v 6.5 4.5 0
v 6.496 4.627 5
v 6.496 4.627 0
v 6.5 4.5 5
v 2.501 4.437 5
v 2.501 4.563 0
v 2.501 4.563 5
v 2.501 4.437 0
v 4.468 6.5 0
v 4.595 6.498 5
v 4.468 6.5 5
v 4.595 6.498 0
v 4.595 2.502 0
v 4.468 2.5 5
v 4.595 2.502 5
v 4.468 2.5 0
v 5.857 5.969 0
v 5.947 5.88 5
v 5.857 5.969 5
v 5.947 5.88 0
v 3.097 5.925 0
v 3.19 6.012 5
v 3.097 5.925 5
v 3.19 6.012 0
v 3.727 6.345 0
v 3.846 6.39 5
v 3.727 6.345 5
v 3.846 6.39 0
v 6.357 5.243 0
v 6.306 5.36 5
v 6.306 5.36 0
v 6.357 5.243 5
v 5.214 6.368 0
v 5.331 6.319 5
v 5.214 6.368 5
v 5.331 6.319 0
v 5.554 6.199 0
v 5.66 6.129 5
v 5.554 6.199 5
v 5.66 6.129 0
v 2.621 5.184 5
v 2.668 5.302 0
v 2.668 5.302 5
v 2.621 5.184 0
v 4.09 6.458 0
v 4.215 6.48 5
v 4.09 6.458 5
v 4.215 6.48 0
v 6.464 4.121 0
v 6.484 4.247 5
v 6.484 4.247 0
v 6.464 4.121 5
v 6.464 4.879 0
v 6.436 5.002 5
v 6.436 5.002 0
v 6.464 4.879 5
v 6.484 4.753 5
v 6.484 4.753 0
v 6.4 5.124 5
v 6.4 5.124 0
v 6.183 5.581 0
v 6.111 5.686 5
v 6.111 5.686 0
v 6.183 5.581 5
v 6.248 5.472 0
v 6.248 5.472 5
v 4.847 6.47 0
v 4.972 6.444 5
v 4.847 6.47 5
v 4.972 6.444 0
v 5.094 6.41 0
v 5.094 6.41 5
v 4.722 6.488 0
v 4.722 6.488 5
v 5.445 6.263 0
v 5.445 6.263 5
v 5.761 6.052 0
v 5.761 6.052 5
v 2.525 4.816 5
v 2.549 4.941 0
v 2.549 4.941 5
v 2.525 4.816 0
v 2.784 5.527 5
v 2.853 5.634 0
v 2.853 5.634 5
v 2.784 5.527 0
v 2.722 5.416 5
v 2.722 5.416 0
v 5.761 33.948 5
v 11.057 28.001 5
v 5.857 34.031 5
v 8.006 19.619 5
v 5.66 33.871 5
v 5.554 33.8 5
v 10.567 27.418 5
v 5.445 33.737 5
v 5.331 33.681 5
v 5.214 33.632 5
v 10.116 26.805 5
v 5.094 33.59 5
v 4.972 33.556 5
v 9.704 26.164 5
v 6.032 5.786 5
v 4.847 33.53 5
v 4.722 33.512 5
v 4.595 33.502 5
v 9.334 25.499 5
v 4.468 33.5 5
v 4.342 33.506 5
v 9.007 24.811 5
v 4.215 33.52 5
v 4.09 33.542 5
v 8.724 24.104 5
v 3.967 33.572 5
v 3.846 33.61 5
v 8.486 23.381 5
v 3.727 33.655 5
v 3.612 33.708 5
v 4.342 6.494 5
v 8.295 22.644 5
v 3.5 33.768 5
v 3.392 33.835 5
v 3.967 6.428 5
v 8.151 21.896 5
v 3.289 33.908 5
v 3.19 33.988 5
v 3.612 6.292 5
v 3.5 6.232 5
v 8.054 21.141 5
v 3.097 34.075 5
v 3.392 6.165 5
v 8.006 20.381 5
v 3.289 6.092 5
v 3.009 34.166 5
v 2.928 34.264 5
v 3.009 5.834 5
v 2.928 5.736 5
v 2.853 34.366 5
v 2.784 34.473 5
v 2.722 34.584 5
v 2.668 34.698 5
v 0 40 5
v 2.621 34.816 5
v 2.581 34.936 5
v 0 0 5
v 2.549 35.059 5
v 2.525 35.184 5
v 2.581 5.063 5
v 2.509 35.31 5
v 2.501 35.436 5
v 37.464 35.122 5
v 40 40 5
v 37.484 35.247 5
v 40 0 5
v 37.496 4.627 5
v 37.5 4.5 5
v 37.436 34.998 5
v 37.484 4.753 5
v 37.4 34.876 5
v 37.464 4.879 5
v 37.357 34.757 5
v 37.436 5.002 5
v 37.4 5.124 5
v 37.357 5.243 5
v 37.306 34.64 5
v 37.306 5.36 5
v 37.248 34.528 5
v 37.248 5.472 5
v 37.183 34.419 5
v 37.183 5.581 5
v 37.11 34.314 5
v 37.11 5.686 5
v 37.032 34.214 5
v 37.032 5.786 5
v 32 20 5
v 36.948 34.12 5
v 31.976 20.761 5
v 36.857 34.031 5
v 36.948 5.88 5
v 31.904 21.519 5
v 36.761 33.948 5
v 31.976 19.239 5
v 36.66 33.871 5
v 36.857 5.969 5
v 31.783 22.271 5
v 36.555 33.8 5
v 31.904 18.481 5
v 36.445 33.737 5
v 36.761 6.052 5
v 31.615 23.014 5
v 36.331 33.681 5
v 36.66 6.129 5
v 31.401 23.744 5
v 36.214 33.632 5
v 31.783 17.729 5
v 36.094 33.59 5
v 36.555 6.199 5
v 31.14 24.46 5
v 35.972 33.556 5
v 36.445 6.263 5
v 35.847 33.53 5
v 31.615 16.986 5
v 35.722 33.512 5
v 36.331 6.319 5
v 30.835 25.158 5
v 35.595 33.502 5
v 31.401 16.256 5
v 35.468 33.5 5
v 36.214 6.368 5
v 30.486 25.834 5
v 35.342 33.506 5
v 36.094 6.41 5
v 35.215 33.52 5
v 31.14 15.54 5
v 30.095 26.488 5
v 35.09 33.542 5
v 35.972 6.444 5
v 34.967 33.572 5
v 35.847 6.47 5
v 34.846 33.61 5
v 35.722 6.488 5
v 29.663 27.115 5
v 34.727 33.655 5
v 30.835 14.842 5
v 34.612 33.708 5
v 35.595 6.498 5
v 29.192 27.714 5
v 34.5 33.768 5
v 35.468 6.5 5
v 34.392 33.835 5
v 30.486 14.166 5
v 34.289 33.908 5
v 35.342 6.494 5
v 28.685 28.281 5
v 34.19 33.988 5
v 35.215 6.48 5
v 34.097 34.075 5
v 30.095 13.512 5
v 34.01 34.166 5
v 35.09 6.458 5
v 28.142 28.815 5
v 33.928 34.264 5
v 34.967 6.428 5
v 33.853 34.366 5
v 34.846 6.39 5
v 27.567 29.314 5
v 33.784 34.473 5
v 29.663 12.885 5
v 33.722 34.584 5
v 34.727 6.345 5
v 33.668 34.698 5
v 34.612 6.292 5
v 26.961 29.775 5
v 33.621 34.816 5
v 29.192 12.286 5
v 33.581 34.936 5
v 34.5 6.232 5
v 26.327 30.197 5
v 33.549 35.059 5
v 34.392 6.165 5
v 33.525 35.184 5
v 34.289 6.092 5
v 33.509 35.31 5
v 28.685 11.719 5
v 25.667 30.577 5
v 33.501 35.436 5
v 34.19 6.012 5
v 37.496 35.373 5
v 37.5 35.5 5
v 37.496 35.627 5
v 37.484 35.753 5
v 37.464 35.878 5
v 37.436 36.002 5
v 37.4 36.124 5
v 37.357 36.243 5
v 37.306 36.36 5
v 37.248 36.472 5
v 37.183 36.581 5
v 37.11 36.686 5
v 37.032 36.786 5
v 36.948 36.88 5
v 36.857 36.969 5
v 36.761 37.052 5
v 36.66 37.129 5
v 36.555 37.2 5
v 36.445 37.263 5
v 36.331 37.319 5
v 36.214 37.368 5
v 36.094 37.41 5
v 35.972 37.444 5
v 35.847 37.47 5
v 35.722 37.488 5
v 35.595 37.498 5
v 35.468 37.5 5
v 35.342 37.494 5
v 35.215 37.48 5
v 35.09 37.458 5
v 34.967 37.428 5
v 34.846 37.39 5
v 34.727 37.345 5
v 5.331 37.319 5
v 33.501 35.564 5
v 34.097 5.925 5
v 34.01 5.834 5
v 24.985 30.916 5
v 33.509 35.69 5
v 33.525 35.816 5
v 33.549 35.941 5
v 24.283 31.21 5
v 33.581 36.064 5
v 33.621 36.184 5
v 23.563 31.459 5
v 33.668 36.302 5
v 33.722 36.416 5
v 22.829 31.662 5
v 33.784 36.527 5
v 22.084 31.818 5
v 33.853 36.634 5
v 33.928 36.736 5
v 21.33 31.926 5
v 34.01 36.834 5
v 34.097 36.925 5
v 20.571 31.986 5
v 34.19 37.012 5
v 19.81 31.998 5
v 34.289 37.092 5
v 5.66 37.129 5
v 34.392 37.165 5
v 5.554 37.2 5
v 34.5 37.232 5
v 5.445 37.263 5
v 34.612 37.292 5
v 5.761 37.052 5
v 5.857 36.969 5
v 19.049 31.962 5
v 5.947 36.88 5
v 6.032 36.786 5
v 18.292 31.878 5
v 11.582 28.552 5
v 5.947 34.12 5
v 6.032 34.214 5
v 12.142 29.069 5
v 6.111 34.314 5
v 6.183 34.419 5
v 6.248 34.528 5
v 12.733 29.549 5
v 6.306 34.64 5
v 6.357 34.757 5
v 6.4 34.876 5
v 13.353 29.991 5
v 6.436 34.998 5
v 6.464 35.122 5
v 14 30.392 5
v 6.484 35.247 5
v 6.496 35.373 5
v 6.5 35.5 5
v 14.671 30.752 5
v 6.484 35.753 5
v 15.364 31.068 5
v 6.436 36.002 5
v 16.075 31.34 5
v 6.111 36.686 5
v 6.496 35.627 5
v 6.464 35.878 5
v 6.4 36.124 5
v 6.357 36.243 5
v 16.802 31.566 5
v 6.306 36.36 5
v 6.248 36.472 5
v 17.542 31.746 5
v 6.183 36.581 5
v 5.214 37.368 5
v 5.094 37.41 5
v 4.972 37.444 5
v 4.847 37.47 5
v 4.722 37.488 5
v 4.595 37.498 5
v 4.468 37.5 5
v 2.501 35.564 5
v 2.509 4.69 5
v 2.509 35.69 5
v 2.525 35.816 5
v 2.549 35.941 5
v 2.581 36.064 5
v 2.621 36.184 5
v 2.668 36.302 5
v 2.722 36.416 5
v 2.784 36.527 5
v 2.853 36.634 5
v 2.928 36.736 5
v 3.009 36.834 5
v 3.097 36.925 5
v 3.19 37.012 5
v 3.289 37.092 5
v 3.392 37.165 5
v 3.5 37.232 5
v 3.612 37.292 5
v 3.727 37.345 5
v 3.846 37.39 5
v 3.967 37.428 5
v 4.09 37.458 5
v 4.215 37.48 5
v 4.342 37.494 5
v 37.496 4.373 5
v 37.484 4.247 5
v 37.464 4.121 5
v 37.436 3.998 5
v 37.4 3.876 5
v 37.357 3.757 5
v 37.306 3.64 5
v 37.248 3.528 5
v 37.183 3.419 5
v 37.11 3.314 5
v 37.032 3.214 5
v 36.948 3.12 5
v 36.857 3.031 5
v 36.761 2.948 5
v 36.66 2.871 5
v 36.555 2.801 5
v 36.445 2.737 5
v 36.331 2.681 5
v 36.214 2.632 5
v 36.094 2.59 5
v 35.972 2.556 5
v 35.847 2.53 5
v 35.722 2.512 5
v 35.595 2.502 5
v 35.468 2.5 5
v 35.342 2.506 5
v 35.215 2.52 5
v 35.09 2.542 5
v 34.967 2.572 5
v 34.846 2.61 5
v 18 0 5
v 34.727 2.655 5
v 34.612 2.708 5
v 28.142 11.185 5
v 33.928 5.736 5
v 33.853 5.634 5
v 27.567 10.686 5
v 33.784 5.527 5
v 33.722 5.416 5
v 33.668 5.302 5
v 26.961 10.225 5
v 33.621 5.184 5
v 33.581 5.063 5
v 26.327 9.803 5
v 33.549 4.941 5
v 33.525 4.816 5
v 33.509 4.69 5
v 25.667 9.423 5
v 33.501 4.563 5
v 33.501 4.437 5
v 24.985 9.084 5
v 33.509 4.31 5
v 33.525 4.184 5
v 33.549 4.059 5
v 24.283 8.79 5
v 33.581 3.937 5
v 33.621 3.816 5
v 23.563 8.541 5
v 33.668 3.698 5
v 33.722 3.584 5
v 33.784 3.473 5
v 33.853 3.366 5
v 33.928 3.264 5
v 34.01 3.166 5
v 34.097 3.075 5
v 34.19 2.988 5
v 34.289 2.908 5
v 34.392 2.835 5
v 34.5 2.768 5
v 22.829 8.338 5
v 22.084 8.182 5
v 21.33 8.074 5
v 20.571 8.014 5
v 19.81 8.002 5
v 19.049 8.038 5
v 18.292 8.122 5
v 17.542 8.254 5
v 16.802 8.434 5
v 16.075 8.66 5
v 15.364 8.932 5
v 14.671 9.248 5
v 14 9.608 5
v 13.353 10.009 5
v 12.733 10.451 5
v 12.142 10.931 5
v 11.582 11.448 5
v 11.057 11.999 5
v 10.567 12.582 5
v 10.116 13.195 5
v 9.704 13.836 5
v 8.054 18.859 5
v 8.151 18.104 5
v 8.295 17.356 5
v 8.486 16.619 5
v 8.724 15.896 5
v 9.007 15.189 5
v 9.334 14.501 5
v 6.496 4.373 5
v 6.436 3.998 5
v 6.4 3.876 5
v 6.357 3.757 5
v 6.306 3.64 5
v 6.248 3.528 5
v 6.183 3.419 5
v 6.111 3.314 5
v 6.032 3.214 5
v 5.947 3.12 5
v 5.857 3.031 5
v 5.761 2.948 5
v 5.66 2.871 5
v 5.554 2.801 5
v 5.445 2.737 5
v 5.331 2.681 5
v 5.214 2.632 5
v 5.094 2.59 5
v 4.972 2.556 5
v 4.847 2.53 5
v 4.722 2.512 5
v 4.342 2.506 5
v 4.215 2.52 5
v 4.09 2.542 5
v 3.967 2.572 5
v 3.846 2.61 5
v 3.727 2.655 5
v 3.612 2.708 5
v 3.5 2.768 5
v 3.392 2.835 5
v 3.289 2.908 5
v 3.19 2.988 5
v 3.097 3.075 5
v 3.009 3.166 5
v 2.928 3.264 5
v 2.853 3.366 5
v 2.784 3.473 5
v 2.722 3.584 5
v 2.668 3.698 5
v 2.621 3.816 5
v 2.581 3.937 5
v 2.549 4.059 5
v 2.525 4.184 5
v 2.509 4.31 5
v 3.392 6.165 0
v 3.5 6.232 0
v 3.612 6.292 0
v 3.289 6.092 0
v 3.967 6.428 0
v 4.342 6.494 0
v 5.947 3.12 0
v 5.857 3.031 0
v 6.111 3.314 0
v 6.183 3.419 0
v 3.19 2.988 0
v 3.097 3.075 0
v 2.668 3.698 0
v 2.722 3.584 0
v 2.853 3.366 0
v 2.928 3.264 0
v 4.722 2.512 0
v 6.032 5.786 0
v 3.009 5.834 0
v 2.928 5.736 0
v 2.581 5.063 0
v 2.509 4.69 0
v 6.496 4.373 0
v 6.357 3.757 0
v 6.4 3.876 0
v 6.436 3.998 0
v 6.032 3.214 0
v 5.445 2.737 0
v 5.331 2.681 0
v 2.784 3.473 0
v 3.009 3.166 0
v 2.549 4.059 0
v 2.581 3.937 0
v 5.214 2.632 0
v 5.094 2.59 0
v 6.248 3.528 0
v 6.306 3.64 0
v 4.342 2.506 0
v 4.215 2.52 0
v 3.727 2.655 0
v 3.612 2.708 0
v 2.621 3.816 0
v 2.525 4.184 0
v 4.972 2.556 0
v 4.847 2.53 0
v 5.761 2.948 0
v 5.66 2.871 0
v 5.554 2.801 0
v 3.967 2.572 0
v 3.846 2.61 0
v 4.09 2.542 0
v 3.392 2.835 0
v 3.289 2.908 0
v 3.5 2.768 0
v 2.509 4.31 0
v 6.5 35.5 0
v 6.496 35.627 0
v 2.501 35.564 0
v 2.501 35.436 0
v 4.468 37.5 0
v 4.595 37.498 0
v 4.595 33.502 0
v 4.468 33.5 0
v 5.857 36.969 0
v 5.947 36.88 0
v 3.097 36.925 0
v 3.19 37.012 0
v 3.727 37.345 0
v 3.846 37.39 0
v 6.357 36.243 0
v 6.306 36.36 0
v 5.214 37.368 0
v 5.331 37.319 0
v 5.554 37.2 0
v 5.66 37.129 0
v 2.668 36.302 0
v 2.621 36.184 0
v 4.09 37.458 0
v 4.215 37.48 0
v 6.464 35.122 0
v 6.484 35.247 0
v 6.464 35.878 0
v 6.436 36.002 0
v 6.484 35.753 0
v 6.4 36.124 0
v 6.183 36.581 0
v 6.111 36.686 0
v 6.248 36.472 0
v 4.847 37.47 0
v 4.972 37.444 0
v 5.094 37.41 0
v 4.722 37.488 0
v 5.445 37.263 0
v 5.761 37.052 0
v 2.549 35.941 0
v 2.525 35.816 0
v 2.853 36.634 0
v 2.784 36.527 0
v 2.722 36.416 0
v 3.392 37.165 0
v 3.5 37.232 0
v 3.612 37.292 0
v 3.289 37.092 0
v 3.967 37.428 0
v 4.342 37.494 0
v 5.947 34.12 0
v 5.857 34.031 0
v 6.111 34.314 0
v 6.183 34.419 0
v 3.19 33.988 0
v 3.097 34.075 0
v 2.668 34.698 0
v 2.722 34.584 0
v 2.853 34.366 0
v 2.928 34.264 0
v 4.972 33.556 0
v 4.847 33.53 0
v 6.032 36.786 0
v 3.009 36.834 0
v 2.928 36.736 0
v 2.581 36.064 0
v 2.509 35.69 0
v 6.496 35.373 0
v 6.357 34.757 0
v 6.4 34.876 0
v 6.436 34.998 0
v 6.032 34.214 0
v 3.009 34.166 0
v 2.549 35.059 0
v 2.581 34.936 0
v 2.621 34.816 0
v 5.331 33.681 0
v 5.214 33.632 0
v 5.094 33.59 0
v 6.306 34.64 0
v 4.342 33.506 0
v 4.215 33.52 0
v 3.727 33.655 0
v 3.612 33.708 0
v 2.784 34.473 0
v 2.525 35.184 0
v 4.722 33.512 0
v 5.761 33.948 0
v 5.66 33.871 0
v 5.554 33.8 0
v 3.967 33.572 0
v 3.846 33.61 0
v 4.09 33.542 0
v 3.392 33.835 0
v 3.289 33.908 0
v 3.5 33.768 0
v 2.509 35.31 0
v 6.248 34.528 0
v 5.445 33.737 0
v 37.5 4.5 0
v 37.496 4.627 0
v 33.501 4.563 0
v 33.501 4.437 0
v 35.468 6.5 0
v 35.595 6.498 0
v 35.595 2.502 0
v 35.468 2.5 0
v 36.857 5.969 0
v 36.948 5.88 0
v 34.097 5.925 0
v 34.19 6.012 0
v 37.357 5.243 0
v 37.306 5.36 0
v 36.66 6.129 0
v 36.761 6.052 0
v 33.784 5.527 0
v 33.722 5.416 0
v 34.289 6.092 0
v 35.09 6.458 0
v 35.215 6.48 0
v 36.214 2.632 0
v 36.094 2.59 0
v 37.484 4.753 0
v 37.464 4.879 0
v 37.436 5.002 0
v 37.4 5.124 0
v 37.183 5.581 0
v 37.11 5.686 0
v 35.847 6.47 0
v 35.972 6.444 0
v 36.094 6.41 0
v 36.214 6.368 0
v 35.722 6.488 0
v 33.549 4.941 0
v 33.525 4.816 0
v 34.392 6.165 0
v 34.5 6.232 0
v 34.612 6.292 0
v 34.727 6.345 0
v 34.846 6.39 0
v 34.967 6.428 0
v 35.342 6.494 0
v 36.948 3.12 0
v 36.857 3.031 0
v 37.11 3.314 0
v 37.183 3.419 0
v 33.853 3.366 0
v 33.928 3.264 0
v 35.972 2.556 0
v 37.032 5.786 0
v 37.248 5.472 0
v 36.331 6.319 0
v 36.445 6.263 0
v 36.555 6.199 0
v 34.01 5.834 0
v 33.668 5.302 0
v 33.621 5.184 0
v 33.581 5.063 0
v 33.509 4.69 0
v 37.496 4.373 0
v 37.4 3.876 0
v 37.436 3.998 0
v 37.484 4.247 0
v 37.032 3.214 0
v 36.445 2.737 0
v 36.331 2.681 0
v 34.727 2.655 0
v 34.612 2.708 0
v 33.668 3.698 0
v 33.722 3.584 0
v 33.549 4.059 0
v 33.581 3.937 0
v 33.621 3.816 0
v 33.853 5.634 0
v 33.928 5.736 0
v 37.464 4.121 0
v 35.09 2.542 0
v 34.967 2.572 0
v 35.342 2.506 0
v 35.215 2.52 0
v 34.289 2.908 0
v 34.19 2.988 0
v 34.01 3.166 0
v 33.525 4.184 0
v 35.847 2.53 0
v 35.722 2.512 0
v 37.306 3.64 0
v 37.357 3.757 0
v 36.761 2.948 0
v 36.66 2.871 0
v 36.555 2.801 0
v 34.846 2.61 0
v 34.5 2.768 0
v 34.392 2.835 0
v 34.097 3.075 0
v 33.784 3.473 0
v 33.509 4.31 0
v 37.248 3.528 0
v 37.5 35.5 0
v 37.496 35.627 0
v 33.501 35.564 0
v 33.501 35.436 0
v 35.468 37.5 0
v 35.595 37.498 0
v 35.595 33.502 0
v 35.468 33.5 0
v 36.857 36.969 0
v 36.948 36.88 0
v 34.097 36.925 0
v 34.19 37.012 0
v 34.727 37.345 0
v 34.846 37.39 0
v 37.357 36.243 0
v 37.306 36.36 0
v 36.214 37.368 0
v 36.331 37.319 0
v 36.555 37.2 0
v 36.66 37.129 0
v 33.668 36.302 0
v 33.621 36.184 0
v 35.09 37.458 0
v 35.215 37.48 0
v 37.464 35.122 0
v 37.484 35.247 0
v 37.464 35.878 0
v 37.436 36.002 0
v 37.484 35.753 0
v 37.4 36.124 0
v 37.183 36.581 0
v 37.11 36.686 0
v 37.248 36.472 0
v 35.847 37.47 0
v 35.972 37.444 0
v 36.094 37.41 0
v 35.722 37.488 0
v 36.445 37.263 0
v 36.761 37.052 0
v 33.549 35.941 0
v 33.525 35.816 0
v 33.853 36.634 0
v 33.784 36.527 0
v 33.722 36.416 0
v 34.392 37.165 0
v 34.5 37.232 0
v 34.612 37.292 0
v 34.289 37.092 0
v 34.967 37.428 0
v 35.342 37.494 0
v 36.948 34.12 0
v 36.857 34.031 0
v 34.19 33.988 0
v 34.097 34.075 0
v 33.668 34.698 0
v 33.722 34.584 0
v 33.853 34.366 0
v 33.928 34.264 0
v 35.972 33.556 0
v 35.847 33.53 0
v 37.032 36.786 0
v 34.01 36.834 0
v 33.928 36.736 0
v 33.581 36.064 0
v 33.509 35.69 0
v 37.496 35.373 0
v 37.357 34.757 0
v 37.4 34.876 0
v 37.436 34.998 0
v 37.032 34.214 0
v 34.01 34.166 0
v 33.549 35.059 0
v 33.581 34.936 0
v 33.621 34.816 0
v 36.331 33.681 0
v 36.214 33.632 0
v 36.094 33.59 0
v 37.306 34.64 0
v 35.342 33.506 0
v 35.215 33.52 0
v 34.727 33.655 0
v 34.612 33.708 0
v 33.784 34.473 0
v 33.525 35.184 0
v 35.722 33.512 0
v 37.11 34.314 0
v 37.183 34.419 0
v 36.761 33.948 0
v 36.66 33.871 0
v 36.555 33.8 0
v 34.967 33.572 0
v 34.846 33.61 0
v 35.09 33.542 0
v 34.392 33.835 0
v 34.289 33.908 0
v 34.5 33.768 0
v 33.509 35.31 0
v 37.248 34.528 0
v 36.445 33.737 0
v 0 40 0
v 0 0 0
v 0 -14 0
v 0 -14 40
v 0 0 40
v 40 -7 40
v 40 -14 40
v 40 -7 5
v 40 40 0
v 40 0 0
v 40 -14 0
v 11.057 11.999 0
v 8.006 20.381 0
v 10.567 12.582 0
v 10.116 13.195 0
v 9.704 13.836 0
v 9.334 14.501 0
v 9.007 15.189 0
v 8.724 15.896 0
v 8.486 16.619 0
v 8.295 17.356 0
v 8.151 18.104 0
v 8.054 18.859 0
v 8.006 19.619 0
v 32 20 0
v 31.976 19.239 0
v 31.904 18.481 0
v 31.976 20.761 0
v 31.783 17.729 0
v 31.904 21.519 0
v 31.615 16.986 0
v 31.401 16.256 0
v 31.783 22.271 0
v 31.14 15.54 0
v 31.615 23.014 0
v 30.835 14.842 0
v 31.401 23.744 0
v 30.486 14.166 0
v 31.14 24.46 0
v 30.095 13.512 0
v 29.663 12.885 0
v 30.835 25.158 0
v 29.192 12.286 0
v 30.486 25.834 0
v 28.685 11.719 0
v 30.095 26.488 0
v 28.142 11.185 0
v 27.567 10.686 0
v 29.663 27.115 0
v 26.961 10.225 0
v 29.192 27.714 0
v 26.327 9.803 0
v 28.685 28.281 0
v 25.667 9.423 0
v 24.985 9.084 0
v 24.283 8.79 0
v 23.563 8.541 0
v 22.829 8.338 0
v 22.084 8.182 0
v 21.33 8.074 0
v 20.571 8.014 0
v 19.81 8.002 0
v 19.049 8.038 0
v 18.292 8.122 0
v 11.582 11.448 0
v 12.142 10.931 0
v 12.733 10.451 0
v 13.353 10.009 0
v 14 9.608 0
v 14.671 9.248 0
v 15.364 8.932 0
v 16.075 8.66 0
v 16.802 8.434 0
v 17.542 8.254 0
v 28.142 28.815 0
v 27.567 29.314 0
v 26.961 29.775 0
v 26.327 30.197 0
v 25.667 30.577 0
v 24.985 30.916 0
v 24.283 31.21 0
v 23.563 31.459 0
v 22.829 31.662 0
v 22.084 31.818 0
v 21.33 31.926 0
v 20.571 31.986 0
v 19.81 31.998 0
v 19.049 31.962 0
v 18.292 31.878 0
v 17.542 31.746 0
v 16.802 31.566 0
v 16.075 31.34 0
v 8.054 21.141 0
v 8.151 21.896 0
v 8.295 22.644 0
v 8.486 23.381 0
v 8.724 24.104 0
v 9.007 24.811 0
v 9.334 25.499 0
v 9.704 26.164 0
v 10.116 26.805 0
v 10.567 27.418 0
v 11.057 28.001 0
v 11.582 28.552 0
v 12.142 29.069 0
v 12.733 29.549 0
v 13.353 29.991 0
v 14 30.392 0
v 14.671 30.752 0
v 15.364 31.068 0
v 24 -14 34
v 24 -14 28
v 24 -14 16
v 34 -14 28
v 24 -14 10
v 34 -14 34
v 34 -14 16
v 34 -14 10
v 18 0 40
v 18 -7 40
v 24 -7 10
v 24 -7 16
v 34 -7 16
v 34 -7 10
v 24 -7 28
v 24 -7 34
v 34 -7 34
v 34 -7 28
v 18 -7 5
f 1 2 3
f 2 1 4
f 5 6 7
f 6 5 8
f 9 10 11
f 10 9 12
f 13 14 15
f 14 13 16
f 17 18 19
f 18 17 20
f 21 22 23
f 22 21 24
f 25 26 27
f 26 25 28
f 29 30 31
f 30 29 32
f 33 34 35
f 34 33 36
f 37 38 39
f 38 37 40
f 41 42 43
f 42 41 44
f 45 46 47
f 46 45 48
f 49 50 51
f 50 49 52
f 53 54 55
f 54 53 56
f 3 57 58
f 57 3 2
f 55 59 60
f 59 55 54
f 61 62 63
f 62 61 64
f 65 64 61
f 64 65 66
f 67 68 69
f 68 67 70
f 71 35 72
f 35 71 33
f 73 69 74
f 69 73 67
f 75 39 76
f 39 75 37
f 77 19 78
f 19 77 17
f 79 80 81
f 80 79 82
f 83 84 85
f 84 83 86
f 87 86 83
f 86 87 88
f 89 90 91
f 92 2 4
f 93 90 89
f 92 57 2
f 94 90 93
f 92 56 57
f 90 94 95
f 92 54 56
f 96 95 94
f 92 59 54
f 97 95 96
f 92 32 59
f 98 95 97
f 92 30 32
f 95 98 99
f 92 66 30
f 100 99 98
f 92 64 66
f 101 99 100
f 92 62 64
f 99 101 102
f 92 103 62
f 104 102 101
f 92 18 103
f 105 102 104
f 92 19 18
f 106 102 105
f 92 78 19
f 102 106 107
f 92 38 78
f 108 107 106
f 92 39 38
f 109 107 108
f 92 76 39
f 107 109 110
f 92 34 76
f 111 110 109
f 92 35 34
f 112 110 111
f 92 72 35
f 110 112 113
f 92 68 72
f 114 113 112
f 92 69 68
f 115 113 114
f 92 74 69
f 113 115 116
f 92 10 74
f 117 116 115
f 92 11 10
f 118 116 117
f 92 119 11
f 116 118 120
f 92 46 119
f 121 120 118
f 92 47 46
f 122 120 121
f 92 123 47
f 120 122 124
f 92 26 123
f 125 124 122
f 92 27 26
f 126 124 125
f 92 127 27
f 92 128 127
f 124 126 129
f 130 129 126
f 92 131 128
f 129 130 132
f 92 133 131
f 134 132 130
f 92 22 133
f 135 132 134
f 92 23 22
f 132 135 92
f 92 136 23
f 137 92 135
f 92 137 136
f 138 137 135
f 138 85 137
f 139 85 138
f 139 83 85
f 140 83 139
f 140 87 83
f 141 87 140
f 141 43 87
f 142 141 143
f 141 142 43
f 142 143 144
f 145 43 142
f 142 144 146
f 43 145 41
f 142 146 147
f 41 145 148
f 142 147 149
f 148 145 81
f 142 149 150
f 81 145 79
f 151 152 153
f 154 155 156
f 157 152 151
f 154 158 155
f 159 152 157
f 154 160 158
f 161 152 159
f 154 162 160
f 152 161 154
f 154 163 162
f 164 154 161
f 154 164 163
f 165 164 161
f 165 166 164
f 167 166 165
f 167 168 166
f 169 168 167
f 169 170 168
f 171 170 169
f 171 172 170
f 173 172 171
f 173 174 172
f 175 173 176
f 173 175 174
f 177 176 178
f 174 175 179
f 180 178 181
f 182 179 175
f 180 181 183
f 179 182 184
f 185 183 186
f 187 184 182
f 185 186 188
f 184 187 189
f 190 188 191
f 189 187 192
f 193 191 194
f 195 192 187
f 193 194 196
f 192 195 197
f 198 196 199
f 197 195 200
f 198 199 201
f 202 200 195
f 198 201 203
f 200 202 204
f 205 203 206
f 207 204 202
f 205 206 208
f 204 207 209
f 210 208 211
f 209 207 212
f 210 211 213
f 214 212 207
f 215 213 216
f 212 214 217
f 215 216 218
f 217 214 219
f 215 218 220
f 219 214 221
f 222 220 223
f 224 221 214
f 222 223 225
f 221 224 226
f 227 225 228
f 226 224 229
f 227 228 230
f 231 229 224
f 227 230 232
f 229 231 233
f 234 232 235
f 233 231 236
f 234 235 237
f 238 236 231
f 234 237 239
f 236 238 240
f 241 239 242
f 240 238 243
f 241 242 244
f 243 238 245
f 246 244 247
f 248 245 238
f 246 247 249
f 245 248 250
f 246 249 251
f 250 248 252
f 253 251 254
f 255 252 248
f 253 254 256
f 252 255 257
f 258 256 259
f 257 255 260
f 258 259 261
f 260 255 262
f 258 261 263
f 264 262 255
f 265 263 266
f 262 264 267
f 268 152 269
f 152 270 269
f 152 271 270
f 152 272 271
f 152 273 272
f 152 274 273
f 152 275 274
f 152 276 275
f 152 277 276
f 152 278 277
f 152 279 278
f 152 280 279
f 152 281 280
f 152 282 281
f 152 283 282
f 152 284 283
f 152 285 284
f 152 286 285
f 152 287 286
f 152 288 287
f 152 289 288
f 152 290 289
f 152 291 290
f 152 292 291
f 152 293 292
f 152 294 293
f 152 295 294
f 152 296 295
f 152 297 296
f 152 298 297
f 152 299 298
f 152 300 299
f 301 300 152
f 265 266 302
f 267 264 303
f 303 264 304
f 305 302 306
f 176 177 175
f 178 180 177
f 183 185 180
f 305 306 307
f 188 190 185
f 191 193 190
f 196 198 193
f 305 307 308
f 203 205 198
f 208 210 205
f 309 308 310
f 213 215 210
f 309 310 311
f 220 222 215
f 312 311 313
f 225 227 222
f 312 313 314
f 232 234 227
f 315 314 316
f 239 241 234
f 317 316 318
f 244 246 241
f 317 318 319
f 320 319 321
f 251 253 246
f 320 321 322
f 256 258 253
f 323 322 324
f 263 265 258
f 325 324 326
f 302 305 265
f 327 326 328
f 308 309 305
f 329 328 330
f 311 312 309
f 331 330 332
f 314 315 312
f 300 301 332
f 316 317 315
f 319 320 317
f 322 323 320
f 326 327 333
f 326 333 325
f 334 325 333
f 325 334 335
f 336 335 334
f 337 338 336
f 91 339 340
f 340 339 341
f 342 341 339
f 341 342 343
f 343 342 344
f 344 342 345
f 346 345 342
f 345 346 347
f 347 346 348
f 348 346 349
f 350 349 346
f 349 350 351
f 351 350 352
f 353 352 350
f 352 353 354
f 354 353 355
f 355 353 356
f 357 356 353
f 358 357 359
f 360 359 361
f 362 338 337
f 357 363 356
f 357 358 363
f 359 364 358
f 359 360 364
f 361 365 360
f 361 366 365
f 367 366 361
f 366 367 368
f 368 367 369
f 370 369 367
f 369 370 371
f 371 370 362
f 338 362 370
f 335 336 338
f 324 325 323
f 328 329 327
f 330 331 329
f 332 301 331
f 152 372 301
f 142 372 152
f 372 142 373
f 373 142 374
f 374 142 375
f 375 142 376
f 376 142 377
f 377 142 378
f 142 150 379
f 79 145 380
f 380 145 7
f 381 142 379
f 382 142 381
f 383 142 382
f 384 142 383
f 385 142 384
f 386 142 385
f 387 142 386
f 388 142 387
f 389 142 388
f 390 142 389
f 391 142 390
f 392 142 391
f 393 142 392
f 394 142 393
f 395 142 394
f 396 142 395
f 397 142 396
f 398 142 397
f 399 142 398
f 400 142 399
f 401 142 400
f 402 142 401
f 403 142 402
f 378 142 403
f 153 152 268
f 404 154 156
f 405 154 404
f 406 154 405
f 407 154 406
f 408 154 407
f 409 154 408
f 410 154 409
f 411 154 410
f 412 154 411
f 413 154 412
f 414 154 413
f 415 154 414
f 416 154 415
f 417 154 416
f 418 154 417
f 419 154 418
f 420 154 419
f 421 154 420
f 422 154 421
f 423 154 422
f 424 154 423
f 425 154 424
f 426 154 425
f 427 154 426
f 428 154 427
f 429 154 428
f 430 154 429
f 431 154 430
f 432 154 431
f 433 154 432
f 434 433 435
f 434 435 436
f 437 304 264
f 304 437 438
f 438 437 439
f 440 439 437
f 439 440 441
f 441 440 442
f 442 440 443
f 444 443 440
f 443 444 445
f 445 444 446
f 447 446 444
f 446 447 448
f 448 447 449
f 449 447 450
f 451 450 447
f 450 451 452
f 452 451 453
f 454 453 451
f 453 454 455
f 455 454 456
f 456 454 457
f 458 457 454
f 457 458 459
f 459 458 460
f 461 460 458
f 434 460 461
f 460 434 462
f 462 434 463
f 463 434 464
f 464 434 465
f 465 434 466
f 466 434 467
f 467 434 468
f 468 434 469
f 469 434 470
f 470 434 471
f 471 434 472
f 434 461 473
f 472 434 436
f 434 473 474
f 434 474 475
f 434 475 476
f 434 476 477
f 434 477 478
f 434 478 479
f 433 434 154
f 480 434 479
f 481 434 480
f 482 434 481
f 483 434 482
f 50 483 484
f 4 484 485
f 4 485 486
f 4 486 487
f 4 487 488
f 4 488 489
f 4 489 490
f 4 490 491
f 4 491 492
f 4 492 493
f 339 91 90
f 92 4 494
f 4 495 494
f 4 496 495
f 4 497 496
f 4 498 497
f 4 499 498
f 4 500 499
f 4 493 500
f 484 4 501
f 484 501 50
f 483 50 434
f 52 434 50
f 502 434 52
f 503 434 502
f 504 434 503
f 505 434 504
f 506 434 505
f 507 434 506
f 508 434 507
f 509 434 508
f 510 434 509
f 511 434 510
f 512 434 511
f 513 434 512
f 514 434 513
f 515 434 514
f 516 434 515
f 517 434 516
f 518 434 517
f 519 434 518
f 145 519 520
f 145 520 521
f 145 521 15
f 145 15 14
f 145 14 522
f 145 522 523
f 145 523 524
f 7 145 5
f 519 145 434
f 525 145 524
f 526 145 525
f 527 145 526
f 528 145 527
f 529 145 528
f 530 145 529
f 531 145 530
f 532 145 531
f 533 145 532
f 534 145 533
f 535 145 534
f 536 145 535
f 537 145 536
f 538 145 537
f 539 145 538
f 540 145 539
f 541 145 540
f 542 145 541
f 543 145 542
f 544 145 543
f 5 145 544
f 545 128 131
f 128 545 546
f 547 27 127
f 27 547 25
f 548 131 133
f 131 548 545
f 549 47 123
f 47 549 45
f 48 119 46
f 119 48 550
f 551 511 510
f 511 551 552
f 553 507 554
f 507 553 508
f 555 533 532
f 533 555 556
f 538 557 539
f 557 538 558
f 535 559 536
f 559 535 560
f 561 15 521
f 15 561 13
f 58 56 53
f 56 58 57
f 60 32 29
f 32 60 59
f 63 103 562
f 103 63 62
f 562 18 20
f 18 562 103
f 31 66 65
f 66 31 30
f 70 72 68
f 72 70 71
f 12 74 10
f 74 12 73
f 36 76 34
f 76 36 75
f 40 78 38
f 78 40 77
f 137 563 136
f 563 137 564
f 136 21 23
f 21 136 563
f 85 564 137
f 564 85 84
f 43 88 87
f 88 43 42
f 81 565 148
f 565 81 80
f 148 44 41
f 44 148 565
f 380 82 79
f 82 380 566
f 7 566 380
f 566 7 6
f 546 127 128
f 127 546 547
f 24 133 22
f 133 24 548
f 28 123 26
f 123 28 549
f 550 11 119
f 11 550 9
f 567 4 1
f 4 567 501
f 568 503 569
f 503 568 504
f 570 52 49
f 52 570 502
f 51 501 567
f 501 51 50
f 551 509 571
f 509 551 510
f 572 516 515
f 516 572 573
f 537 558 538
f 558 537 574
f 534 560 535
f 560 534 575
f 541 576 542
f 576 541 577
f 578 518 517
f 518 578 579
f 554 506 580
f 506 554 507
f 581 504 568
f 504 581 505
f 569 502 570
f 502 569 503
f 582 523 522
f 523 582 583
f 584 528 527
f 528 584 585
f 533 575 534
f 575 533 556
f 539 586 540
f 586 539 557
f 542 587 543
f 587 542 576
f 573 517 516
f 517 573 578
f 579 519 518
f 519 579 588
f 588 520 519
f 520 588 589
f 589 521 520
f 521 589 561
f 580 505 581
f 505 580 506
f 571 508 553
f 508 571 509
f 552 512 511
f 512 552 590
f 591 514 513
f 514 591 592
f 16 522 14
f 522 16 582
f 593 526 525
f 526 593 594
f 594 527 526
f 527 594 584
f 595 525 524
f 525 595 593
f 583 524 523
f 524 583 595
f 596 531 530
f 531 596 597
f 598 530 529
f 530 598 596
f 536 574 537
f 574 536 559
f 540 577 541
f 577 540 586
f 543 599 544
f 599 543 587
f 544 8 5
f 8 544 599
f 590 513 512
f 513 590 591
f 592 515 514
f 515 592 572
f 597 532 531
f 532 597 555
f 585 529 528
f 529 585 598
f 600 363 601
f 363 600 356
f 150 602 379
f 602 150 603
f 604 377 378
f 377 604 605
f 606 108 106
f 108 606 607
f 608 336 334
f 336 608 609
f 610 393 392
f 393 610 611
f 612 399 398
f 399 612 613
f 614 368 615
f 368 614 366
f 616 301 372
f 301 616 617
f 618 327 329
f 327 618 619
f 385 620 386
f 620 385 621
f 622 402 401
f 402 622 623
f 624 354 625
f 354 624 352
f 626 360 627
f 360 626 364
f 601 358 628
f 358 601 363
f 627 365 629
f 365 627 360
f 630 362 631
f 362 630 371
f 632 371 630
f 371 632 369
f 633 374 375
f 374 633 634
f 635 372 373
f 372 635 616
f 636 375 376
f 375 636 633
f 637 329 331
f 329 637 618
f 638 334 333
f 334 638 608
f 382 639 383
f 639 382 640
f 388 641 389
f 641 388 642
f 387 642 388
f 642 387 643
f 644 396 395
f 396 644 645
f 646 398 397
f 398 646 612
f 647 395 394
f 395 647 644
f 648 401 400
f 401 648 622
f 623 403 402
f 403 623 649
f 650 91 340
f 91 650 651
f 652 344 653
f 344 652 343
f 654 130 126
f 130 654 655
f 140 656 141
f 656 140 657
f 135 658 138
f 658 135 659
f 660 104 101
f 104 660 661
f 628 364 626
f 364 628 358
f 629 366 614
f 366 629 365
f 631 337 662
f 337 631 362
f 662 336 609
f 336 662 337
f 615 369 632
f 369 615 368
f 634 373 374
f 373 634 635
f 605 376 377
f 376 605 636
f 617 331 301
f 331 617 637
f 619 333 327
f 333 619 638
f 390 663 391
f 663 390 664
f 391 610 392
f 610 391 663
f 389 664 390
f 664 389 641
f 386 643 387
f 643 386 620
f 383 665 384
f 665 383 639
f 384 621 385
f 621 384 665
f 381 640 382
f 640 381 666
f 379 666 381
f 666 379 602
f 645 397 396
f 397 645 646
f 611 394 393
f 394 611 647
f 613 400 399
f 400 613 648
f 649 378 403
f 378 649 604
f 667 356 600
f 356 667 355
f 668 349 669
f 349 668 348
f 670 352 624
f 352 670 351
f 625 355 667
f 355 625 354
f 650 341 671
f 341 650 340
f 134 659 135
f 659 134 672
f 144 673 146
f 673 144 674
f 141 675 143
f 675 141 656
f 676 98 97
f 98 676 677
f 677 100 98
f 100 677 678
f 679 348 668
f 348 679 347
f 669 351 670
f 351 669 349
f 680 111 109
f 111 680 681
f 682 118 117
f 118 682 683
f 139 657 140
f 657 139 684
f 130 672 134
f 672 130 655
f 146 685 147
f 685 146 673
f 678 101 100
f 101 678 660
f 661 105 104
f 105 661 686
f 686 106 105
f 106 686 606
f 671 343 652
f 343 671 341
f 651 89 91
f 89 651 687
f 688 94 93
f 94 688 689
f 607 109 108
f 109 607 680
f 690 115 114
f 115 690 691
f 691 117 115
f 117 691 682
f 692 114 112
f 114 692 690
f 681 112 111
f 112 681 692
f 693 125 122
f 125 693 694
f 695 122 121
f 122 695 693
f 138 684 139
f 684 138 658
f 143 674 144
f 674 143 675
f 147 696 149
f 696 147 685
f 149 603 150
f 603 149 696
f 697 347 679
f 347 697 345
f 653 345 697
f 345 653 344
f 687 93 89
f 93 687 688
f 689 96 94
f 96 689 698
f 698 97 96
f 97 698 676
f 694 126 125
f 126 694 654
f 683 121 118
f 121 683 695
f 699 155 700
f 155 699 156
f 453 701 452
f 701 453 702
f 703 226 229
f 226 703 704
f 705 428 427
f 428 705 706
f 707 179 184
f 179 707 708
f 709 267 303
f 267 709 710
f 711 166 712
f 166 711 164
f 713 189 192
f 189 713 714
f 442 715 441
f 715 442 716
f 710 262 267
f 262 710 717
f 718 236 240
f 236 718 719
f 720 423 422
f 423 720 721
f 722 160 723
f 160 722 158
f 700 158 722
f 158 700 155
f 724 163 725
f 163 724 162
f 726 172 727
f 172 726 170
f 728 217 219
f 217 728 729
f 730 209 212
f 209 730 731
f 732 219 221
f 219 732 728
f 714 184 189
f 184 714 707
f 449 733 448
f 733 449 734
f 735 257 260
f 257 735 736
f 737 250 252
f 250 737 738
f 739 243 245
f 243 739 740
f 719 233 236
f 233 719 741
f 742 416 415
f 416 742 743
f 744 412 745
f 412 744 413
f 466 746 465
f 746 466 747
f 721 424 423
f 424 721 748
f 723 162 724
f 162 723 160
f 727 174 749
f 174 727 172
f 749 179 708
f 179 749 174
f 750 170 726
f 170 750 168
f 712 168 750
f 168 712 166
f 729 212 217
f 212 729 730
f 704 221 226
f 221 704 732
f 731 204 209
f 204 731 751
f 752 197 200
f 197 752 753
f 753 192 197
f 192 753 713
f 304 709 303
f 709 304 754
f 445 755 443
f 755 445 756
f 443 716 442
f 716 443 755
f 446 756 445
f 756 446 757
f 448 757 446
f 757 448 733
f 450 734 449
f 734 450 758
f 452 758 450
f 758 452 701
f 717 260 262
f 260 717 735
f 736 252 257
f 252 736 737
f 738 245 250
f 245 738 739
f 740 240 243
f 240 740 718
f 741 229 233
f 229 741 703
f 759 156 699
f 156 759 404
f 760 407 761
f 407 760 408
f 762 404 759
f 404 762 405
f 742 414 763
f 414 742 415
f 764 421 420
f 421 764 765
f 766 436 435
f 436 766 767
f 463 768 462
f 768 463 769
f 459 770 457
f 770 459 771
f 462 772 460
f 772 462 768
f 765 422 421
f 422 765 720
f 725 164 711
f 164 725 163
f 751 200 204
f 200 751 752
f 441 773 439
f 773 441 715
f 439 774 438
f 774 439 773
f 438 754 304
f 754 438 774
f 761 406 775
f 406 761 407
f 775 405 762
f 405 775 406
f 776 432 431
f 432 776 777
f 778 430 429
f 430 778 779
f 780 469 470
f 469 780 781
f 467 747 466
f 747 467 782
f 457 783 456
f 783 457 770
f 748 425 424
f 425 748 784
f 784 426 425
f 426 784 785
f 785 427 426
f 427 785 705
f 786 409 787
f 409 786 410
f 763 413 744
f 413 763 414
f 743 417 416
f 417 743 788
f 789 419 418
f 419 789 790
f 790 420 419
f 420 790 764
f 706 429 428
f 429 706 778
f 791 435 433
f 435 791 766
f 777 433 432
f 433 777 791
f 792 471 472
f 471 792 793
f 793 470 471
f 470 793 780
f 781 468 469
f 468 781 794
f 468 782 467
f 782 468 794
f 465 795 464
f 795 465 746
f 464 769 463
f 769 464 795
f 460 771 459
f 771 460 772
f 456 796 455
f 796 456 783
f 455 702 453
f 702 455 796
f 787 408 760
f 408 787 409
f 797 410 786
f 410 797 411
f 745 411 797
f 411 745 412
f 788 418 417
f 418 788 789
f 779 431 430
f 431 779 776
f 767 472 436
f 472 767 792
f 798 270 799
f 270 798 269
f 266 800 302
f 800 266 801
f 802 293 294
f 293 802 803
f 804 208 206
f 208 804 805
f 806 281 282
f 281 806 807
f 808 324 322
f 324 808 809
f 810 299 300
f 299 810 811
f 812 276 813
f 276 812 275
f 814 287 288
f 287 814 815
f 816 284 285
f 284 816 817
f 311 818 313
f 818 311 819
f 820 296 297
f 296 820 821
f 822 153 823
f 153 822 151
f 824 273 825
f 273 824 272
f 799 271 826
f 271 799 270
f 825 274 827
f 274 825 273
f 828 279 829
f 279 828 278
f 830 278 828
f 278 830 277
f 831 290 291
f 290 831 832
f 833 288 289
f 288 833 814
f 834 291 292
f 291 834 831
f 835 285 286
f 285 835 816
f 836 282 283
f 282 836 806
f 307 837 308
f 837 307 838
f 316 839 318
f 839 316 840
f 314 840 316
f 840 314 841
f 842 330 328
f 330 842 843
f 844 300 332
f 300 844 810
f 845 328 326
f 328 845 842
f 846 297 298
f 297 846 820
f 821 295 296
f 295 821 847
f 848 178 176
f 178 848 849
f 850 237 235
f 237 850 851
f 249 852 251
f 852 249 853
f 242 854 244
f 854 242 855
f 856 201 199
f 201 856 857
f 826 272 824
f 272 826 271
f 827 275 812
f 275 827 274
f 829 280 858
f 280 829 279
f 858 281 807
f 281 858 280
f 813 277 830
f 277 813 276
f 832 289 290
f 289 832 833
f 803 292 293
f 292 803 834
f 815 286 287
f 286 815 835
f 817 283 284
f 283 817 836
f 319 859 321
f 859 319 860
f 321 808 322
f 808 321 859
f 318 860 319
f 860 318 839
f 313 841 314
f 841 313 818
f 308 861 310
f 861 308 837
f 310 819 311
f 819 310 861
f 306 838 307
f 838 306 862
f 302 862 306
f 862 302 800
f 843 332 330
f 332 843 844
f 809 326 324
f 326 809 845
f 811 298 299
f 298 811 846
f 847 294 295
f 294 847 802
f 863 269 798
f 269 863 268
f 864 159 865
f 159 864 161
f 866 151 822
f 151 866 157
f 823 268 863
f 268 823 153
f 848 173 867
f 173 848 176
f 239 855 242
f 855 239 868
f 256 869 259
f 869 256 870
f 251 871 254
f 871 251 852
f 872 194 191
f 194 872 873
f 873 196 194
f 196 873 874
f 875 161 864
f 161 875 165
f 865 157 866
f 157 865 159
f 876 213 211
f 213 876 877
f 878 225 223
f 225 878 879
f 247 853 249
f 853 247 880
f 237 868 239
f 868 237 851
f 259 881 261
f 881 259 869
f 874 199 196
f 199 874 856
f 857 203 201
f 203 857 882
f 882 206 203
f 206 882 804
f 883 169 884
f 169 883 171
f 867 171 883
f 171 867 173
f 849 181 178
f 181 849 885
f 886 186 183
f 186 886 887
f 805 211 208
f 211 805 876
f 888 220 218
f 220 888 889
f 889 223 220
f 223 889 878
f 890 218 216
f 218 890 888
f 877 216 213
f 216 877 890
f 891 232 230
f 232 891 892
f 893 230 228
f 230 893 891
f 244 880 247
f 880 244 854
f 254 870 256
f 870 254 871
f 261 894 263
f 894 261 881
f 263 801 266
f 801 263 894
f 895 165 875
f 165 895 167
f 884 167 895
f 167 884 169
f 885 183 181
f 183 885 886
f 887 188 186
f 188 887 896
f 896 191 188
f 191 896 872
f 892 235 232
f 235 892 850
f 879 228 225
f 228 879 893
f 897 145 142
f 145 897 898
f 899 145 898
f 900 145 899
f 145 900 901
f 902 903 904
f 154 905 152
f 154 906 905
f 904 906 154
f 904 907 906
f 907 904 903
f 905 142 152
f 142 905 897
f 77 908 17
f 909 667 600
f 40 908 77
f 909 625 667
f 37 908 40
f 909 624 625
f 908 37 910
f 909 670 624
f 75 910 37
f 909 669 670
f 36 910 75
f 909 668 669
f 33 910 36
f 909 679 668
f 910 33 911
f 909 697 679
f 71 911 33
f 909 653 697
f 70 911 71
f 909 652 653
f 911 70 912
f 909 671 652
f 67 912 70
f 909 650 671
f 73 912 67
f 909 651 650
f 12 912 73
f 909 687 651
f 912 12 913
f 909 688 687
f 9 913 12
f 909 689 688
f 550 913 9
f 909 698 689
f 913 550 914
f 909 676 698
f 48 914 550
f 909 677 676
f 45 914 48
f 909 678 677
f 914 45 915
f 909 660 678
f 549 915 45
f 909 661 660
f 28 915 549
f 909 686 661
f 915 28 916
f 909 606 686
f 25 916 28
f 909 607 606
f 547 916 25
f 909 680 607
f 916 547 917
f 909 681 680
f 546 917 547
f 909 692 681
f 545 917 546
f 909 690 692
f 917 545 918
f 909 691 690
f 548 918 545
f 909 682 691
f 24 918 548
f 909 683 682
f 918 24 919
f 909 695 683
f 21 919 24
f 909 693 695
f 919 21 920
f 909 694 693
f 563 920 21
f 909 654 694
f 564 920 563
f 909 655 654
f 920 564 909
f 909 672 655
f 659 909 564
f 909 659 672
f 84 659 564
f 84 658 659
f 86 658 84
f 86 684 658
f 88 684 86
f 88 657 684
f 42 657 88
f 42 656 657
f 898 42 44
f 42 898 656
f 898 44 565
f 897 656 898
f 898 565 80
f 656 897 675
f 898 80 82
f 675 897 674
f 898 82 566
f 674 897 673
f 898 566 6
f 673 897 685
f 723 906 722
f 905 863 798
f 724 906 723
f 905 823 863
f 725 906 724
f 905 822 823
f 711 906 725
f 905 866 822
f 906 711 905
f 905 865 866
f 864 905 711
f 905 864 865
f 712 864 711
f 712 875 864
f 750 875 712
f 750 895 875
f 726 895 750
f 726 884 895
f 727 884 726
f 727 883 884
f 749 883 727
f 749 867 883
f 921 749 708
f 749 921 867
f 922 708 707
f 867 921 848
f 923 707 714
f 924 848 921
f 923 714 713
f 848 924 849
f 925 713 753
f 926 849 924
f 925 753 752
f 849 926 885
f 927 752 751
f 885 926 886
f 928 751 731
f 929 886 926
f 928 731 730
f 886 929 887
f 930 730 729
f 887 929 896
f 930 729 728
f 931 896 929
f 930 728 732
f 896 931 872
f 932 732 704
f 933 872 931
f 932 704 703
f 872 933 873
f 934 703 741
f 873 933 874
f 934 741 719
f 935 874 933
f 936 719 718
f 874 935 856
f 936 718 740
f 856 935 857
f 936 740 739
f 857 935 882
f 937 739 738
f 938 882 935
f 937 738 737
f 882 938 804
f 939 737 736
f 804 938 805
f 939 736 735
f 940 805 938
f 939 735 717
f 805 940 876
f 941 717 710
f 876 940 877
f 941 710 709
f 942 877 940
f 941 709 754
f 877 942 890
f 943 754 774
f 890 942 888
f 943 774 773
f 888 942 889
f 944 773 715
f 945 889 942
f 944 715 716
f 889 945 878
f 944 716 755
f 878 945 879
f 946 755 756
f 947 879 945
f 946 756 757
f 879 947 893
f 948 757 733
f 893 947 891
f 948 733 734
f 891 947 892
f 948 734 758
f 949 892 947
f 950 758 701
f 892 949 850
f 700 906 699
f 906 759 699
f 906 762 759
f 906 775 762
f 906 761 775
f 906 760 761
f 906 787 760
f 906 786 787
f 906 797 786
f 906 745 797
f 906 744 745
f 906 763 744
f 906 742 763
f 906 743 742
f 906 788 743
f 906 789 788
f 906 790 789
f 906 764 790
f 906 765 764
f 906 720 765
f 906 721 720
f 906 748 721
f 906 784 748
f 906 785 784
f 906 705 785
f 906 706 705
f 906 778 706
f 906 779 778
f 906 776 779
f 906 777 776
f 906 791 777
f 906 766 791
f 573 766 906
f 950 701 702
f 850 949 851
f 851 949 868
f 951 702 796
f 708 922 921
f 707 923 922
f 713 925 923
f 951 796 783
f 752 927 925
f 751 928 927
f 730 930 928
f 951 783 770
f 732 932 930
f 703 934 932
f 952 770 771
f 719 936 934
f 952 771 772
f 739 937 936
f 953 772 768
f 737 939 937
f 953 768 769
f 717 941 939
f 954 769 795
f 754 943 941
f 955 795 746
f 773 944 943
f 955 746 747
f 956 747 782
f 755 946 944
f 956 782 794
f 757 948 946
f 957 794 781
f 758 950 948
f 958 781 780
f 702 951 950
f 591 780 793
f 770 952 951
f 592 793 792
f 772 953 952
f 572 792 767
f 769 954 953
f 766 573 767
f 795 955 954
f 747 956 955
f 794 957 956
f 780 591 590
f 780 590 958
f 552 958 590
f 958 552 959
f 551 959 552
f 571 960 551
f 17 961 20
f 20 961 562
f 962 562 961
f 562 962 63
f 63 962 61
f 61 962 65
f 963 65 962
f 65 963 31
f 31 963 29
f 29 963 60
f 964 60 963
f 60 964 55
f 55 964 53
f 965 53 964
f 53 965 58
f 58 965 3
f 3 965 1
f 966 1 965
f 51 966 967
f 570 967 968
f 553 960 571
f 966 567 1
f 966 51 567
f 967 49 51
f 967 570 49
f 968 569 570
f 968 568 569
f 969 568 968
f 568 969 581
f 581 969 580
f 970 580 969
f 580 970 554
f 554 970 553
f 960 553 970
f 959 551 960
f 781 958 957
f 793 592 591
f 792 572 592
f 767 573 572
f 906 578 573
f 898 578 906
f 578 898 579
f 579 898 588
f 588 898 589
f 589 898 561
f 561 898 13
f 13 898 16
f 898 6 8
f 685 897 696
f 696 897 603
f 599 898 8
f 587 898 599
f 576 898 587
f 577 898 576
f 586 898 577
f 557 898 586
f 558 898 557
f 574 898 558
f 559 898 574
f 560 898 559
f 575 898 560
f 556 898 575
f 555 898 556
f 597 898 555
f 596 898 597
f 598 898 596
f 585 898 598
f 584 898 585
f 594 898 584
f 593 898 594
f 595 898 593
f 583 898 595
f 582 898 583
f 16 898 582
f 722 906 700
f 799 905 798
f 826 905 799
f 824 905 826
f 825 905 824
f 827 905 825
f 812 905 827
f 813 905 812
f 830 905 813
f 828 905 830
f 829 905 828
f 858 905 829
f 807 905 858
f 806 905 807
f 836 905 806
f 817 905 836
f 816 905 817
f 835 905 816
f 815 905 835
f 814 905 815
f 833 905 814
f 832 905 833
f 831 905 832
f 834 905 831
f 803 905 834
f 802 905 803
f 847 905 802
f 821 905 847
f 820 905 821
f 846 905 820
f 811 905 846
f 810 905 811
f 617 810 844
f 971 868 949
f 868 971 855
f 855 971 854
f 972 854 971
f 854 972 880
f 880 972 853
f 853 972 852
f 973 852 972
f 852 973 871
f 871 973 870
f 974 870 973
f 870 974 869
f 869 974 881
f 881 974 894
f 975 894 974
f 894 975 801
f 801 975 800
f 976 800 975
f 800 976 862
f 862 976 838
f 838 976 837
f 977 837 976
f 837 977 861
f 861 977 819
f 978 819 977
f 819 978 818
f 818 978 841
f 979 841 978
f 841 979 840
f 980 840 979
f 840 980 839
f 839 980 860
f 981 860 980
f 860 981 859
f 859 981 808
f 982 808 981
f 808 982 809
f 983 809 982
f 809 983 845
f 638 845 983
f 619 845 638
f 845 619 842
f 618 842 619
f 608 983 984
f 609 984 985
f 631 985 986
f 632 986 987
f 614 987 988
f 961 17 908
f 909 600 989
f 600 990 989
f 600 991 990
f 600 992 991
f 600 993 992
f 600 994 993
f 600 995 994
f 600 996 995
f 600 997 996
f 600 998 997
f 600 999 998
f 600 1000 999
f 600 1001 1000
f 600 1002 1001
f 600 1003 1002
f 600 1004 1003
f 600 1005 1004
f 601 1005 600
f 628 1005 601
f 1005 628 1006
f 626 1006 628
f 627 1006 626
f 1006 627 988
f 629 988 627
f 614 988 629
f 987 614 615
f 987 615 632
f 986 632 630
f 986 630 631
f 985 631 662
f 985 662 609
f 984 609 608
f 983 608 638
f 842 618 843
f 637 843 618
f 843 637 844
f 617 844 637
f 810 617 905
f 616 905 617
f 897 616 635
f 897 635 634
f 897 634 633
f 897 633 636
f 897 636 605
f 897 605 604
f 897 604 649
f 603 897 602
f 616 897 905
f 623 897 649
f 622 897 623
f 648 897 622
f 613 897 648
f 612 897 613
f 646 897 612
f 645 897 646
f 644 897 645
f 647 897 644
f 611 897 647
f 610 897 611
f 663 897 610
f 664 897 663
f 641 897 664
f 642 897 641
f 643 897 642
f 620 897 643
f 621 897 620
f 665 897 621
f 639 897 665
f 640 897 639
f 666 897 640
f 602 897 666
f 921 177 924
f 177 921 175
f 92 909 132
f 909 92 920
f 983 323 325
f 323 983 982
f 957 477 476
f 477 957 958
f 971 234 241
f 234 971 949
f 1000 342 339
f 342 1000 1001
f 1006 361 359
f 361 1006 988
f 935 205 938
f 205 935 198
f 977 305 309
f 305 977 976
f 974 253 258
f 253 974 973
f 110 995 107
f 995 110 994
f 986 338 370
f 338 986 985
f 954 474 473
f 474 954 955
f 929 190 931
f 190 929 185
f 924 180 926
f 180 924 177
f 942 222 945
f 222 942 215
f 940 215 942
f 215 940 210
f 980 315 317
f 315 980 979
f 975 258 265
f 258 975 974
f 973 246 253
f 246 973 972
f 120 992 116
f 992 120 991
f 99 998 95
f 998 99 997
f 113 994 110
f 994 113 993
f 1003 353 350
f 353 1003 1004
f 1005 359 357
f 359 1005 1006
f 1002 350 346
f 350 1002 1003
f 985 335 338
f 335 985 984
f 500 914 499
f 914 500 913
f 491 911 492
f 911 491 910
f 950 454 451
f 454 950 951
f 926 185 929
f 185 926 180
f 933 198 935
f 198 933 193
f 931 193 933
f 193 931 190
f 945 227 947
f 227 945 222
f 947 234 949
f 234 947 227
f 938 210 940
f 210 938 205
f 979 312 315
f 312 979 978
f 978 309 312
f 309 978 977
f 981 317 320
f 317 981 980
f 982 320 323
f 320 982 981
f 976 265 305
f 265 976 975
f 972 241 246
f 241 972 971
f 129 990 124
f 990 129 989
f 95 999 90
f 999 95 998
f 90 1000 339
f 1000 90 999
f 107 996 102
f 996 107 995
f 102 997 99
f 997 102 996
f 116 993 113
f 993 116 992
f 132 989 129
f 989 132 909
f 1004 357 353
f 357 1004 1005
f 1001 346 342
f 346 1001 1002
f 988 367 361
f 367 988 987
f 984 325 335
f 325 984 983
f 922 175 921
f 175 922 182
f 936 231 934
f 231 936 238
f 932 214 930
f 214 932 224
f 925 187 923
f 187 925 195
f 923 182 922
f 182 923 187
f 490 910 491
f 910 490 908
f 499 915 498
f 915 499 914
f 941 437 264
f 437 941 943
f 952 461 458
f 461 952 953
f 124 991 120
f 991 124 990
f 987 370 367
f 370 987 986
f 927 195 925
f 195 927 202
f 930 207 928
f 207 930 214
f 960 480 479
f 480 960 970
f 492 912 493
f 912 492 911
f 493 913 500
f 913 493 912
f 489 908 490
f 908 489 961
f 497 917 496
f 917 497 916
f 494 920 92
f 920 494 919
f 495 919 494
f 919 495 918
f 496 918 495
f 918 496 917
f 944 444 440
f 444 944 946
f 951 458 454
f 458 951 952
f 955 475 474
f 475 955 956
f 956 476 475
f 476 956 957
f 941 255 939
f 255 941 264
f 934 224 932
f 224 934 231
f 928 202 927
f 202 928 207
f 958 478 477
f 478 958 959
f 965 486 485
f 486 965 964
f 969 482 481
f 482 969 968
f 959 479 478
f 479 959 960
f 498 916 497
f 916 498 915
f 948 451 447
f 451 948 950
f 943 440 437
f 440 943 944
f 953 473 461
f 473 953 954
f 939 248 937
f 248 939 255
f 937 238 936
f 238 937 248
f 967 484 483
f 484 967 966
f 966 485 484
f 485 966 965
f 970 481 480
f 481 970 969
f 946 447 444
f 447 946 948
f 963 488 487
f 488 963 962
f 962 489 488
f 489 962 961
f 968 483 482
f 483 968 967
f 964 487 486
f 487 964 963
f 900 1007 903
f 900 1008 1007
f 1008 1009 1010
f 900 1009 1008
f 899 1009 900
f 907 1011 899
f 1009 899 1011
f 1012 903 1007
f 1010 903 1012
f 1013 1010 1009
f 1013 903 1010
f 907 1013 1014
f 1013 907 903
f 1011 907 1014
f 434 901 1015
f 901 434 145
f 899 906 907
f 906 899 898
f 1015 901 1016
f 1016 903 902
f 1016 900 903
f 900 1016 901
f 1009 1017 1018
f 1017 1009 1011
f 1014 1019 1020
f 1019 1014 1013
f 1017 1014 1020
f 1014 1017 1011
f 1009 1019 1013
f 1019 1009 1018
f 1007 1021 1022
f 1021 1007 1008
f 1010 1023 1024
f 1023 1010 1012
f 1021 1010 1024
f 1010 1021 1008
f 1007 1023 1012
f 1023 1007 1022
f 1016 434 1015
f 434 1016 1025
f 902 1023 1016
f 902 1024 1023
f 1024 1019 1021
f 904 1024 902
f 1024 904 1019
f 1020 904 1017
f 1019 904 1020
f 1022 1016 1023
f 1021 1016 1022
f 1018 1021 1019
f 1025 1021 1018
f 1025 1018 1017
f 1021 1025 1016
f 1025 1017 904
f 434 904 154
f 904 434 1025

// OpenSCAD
$fn=99; 

difference() {
    cube([40,40,5]); 
    for(i=[0,1]) for(j=[0,1]) translate([4.5+31*i,4.5+31*j,0]) cylinder(r=2, h=10, center=true); 
    translate([20,20,0]) cylinder( r=12, h=10, center=true ); 
    translate([4,50,-1]) cube([32,6,10]); 
    translate([4,68,-1]) cube([32,6,10]); 
    translate([4,50,-1]) cube([32,6,10]); 
}

rotate([90,0,0]) 
difference() {
    cube([40,40,14]); 
    translate([24,10,-1]) cube([10,6,30]); 
    translate([24,28,-1]) cube([10,6,30]); 
    translate([18,5,0]) cube([24,40,7]);
}
